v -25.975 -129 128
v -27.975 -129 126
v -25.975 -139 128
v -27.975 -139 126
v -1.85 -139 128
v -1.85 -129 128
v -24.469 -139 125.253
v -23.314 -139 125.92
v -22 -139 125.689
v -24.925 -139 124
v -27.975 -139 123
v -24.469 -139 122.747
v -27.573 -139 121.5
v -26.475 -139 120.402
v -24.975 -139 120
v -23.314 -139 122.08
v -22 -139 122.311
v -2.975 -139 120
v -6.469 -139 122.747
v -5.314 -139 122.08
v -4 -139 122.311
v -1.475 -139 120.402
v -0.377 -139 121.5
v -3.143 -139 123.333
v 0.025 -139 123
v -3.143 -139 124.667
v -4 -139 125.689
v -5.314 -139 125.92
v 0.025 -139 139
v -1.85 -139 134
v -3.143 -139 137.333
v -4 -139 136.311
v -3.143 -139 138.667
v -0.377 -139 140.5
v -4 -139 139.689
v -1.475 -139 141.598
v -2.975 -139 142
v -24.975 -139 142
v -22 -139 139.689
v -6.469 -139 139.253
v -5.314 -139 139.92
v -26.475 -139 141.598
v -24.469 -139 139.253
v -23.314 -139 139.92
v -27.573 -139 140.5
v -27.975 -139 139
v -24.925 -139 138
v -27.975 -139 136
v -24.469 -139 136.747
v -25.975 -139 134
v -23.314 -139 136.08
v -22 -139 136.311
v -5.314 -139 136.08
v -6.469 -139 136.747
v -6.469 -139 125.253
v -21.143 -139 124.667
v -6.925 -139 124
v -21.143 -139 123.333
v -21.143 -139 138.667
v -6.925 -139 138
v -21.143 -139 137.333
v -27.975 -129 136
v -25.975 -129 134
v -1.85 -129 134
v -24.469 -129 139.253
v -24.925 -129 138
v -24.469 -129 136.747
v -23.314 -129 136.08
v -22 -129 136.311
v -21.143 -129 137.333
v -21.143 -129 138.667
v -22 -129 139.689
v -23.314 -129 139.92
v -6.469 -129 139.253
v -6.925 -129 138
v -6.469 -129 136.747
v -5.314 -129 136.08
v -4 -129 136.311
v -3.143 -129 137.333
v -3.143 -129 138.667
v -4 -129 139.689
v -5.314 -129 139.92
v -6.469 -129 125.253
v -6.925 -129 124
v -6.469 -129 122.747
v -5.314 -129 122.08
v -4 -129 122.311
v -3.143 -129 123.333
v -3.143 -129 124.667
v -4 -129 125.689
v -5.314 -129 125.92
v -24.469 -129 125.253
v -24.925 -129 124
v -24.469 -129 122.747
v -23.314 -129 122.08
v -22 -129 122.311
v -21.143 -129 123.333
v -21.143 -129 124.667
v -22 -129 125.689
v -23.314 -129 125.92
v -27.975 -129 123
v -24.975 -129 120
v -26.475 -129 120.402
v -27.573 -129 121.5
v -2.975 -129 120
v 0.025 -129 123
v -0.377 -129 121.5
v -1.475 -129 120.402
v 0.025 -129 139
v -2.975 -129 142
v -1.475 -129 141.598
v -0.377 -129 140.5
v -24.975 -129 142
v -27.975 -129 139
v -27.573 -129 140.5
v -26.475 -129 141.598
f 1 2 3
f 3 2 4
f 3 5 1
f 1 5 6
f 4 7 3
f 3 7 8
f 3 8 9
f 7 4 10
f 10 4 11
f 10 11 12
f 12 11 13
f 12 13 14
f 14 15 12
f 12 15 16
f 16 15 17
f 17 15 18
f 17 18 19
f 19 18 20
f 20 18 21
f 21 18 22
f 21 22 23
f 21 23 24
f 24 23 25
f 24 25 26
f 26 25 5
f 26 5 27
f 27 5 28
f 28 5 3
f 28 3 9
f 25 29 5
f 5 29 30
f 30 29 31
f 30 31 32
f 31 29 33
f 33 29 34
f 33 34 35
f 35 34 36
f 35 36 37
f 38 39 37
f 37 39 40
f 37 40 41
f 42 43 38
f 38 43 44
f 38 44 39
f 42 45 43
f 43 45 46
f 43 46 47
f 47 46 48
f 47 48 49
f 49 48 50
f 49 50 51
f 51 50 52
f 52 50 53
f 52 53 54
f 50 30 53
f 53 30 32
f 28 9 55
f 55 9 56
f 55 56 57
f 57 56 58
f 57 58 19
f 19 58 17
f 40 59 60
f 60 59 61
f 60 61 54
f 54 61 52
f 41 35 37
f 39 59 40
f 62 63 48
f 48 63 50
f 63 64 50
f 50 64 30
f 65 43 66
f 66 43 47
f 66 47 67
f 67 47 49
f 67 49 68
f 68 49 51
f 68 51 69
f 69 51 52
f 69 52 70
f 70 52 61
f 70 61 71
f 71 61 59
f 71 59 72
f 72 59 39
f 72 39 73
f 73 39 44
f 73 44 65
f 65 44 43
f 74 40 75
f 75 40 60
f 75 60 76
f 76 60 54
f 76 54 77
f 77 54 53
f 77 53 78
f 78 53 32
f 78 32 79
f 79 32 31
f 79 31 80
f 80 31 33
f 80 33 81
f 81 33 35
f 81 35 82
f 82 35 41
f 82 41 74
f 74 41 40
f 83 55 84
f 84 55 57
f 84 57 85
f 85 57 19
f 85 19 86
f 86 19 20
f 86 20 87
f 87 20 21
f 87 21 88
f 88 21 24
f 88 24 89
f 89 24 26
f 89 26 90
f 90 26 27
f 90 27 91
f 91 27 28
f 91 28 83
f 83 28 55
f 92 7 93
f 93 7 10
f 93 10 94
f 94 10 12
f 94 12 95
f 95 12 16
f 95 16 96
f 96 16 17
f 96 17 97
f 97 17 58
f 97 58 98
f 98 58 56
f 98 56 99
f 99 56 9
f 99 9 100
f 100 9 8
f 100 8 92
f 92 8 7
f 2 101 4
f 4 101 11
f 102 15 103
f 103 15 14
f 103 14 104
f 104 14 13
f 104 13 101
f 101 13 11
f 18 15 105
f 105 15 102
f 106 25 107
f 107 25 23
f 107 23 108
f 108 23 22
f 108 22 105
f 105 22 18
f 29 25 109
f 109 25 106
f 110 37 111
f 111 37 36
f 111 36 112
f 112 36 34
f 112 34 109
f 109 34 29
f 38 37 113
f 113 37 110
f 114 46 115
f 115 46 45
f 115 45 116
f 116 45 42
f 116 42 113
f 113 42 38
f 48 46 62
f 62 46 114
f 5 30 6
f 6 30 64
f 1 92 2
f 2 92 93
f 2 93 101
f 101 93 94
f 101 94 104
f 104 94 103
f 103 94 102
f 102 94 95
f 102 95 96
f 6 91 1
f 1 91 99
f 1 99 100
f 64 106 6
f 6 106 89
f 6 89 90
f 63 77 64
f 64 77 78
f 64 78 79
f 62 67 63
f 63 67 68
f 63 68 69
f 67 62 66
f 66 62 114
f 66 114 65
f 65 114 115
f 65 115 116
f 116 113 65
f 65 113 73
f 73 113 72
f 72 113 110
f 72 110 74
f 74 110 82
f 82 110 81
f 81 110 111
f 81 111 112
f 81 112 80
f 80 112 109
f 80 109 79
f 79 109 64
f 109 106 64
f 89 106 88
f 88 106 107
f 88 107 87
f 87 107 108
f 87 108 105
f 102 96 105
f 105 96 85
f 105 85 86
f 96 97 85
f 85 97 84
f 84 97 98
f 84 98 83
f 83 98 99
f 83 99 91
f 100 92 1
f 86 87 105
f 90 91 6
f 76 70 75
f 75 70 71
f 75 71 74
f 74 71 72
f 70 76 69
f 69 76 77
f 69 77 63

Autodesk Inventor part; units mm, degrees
ref_plane "YZ Plane" through (0, 0, 0) normal (1, 0, 0) x (0, 1, 0)
ref_plane "XZ Plane" through (0, 0, 0) normal (0, 1, 0) x (-1, 0, 0)
ref_plane "РабПлоскость1" through (-243.8305, -139, 0) normal (0, 1, 0) x (-1, 0, 0)
sketch "Эскиз1" plane through (-243.8305, -139, 0) normal (0, 1, 0) x (-1, 0, 0)
  line L0 (-217.7305, 128) -> (-241.9805, 128) projected
  line L1 (-241.9805, 128) -> (-241.9805, 134) projected
  line L2 (-217.7305, 134) -> (-241.9805, 134) projected
  line L3 (-217.7305, 128) -> (-217.7305, 134) construction
  line L4 (-218.8555, 120) -> (-240.8555, 120)
  line L5 (-243.8555, 123) -> (-243.8555, 139)
  line L6 (-240.8555, 142) -> (-218.8555, 142)
  line L7 (-215.8555, 139) -> (-215.8555, 123)
  line L8 (-229.8555, 128) -> (-229.8555, 134) construction
  line L9 (-217.7305, 131) -> (-241.9805, 131) construction
  line L10 (-238.8555, 138) -> (-220.8555, 138) construction
  line L11 (-220.8555, 138) -> (-220.8555, 124) construction
  line L12 (-220.8555, 124) -> (-238.8555, 124) construction
  line L13 (-238.8555, 124) -> (-238.8555, 138) construction
  line L14 (-238.8555, 138) -> (-220.8555, 124) construction
  line L15 (-220.8555, 138) -> (-238.8555, 124) construction
  circle A0 centre (-220.8555, 124) radius 1.95
  circle A1 centre (-238.8555, 124) radius 1.95
  circle A2 centre (-238.8555, 138) radius 1.95
  circle A3 centre (-220.8555, 138) radius 1.95
  arc A4 (-218.8555, 120) -> (-215.8555, 123) centre (-218.8555, 123) ccw
  arc A5 (-215.8555, 139) -> (-218.8555, 142) centre (-218.8555, 139) ccw
  arc A6 (-240.8555, 142) -> (-243.8555, 139) centre (-240.8555, 139) ccw
  arc A7 (-243.8555, 123) -> (-240.8555, 120) centre (-240.8555, 123) ccw
  line L16 (-217.7305, 128) -> (-215.8555, 128)
  line L17 (-215.8555, 128) -> (-215.8555, 134)
  line L18 (-215.8555, 134) -> (-217.7305, 134)
  line L19 (-217.7305, 134) -> (-217.7305, 128) construction
  point P0 (-243.8305, 0)
  point P1 (-243.8555, 142)
  point P2 (-243.8555, 120)
  point P3 (-215.8555, 142)
  point P4 (-229.8555, 131)
  dimension "d0" = 28
  dimension "d1" = 22
  dimension "d2" = 3.9
  dimension "d3" = 18
  dimension "d4" = 14
  dimension "d5" = 3
extrude "Выдавливание1" add sketch "Эскиз1" along normal blind 10 contours L16 L7 A4 L4 A7 L5 A6 L6 A5 L18 L2 L1 L0
chamfer "Фаска1" distance 2 angle 45 2 edges at (-27.975, -134, 134) (-27.975, -134, 128)
properties part number "Фиксатор_сервопривода" material "По умолчанию1"
